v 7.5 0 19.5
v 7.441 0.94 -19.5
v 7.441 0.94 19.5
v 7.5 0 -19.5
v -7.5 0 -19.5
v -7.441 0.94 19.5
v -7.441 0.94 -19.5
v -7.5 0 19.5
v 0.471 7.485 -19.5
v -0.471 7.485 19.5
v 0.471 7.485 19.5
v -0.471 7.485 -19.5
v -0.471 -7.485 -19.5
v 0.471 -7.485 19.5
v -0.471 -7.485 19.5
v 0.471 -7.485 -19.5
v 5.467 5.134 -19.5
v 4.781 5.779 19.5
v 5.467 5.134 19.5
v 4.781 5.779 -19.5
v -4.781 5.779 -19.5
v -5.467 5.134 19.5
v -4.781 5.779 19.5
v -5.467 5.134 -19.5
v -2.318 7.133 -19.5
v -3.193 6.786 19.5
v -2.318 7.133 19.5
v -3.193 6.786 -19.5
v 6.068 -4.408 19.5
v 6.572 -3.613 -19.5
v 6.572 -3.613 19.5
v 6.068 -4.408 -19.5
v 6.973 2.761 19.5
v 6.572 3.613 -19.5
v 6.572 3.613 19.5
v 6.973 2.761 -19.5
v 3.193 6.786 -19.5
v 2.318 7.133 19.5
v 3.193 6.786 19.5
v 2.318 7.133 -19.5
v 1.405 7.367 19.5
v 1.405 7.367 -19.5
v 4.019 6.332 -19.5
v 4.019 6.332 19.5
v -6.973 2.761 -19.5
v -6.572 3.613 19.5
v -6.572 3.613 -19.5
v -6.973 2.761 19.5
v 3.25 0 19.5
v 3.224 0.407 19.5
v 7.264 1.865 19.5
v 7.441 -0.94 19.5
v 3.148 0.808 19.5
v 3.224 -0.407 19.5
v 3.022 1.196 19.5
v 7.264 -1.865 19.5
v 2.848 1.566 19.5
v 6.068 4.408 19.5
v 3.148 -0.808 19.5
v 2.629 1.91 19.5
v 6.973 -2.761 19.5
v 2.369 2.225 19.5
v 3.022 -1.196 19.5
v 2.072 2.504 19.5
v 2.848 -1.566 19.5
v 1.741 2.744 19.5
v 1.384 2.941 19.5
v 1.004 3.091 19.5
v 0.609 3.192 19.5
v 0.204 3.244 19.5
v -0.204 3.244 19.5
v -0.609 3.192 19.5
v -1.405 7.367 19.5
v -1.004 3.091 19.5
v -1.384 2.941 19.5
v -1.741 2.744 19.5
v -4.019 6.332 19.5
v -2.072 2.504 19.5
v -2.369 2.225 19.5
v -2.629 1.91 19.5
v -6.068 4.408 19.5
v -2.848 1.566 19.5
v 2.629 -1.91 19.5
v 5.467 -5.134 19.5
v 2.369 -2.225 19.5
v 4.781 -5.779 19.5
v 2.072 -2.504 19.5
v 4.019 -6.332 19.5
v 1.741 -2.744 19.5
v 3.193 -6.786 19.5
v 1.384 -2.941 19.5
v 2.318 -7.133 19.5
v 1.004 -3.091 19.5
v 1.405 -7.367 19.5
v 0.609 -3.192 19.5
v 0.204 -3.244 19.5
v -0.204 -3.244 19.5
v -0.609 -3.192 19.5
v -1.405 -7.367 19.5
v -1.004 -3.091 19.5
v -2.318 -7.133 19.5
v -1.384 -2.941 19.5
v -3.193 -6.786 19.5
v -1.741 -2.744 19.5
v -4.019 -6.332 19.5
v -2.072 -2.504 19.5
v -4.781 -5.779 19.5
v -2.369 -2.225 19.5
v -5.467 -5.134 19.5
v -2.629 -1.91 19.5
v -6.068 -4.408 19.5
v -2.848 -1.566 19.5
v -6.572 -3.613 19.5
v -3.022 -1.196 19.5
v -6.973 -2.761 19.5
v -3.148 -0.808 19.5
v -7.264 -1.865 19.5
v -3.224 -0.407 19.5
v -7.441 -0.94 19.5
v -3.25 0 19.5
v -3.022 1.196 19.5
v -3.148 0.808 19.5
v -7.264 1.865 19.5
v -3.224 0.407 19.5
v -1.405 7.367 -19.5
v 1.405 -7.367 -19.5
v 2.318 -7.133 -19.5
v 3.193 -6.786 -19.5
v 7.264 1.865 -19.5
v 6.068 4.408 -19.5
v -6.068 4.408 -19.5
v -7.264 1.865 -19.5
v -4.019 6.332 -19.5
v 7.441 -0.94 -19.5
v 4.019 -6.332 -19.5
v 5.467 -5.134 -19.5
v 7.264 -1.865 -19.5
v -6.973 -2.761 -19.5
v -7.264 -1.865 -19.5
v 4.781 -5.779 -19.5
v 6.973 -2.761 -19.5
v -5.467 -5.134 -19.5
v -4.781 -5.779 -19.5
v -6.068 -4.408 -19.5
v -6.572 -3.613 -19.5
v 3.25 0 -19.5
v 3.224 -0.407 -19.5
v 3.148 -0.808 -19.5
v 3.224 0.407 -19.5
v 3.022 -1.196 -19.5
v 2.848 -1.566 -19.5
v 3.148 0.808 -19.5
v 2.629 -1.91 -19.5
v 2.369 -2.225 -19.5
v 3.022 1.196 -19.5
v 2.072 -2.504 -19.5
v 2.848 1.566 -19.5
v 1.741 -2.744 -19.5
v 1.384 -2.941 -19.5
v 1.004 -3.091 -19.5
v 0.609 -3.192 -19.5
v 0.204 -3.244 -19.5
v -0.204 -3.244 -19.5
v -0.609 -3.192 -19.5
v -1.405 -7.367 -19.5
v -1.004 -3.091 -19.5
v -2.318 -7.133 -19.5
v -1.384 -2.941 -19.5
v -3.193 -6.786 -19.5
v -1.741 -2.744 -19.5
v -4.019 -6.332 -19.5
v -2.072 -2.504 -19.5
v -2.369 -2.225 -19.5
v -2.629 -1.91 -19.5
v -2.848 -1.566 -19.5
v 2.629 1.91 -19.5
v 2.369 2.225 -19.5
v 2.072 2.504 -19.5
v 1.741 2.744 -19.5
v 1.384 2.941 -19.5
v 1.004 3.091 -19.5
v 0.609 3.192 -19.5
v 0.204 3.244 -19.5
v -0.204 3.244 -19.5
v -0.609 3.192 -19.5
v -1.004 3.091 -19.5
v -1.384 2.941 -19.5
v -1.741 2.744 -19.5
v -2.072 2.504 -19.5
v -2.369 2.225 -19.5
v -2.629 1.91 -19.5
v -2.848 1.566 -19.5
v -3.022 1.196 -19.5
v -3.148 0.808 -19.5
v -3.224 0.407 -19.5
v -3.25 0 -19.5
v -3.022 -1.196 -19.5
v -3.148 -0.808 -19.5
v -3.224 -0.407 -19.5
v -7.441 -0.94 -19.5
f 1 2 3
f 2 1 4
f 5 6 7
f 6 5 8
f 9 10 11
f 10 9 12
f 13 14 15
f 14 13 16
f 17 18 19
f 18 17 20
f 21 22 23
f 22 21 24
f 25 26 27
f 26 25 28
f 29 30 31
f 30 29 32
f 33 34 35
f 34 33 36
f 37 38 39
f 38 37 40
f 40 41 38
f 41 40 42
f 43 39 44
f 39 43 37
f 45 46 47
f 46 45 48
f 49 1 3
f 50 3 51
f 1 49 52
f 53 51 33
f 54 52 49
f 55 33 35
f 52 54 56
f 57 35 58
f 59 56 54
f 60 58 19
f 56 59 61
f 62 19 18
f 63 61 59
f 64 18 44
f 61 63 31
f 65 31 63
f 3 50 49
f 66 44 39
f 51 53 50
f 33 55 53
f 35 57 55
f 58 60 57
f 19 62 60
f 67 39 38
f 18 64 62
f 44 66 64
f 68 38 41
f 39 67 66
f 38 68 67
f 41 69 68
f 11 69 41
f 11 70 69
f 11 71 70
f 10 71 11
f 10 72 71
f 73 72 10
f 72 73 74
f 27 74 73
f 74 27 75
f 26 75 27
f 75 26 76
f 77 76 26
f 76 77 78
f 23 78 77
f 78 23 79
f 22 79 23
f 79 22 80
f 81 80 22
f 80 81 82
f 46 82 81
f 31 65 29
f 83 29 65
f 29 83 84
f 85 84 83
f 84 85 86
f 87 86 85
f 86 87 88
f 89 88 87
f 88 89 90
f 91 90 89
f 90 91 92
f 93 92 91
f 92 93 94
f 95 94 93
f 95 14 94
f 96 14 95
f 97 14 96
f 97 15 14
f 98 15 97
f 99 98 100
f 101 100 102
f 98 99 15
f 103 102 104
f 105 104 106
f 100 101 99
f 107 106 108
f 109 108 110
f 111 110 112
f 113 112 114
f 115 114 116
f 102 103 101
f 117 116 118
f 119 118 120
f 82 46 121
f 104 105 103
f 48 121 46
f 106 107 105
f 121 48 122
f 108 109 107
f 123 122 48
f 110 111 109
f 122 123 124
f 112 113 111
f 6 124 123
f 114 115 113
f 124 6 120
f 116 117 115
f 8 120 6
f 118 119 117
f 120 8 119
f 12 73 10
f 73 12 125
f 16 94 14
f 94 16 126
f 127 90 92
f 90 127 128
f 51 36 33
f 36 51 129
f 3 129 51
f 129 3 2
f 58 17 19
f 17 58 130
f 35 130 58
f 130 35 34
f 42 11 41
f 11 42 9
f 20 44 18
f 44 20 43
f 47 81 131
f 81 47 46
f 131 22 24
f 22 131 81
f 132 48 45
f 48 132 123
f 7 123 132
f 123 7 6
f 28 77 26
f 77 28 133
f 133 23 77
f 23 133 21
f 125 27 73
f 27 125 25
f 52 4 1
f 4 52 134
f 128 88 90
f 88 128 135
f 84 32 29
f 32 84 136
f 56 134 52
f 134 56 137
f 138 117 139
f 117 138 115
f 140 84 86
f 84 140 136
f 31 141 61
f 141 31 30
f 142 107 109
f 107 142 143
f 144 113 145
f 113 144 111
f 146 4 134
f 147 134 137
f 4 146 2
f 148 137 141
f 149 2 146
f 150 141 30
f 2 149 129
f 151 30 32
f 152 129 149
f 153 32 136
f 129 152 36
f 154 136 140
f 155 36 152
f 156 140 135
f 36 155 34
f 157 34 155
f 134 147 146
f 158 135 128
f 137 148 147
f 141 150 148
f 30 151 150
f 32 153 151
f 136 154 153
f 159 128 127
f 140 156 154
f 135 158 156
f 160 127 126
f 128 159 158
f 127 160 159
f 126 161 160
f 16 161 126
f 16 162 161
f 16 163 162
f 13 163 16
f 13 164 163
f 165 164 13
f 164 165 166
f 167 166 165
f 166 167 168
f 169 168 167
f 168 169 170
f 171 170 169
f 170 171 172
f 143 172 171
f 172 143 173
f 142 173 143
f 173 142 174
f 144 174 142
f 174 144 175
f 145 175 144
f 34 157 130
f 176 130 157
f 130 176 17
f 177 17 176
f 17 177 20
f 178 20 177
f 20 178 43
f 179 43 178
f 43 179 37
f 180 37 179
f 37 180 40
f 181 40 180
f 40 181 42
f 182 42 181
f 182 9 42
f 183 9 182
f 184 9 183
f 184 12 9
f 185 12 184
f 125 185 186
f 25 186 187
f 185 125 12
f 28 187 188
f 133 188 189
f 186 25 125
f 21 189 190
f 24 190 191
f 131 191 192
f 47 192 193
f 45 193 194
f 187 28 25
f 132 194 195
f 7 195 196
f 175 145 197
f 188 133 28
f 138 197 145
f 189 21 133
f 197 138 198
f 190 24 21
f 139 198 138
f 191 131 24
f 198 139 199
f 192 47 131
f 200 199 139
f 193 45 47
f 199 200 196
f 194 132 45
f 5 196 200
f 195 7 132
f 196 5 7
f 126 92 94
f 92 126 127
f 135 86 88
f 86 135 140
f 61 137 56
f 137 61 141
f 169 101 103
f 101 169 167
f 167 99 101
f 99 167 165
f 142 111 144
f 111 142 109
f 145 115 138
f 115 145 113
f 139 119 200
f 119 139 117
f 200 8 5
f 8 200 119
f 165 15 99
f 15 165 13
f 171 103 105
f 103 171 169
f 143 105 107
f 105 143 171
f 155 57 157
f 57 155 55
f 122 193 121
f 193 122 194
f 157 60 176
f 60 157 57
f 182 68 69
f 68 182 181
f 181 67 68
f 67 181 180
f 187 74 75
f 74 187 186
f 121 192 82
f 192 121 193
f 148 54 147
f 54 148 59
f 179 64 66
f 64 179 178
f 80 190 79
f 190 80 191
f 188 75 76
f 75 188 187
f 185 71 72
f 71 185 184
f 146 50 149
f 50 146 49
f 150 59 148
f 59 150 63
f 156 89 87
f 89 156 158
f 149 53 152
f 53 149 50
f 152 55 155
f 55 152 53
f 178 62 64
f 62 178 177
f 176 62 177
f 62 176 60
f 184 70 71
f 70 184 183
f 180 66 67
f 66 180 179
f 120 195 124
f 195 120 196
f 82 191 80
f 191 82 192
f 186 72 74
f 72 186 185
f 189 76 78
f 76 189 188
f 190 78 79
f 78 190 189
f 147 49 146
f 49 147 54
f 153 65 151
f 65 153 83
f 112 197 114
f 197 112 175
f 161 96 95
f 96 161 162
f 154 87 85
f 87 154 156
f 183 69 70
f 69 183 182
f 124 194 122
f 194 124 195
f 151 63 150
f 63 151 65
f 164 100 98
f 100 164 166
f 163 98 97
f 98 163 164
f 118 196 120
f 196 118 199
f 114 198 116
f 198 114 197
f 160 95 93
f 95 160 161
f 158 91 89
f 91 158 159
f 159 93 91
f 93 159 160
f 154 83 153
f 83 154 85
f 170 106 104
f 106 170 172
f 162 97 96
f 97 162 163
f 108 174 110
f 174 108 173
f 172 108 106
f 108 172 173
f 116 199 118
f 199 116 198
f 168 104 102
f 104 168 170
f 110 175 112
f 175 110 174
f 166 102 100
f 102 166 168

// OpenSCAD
$fn = 50;


difference() {
	union() {
		translate(v = [0, 0, -19.5000000000]) {
			cylinder(h = 39, r = 7.5000000000);
		}
	}
	union() {
		translate(v = [0, 0, -100.0000000000]) {
			cylinder(h = 200, r = 3.2500000000);
		}
	}
}
